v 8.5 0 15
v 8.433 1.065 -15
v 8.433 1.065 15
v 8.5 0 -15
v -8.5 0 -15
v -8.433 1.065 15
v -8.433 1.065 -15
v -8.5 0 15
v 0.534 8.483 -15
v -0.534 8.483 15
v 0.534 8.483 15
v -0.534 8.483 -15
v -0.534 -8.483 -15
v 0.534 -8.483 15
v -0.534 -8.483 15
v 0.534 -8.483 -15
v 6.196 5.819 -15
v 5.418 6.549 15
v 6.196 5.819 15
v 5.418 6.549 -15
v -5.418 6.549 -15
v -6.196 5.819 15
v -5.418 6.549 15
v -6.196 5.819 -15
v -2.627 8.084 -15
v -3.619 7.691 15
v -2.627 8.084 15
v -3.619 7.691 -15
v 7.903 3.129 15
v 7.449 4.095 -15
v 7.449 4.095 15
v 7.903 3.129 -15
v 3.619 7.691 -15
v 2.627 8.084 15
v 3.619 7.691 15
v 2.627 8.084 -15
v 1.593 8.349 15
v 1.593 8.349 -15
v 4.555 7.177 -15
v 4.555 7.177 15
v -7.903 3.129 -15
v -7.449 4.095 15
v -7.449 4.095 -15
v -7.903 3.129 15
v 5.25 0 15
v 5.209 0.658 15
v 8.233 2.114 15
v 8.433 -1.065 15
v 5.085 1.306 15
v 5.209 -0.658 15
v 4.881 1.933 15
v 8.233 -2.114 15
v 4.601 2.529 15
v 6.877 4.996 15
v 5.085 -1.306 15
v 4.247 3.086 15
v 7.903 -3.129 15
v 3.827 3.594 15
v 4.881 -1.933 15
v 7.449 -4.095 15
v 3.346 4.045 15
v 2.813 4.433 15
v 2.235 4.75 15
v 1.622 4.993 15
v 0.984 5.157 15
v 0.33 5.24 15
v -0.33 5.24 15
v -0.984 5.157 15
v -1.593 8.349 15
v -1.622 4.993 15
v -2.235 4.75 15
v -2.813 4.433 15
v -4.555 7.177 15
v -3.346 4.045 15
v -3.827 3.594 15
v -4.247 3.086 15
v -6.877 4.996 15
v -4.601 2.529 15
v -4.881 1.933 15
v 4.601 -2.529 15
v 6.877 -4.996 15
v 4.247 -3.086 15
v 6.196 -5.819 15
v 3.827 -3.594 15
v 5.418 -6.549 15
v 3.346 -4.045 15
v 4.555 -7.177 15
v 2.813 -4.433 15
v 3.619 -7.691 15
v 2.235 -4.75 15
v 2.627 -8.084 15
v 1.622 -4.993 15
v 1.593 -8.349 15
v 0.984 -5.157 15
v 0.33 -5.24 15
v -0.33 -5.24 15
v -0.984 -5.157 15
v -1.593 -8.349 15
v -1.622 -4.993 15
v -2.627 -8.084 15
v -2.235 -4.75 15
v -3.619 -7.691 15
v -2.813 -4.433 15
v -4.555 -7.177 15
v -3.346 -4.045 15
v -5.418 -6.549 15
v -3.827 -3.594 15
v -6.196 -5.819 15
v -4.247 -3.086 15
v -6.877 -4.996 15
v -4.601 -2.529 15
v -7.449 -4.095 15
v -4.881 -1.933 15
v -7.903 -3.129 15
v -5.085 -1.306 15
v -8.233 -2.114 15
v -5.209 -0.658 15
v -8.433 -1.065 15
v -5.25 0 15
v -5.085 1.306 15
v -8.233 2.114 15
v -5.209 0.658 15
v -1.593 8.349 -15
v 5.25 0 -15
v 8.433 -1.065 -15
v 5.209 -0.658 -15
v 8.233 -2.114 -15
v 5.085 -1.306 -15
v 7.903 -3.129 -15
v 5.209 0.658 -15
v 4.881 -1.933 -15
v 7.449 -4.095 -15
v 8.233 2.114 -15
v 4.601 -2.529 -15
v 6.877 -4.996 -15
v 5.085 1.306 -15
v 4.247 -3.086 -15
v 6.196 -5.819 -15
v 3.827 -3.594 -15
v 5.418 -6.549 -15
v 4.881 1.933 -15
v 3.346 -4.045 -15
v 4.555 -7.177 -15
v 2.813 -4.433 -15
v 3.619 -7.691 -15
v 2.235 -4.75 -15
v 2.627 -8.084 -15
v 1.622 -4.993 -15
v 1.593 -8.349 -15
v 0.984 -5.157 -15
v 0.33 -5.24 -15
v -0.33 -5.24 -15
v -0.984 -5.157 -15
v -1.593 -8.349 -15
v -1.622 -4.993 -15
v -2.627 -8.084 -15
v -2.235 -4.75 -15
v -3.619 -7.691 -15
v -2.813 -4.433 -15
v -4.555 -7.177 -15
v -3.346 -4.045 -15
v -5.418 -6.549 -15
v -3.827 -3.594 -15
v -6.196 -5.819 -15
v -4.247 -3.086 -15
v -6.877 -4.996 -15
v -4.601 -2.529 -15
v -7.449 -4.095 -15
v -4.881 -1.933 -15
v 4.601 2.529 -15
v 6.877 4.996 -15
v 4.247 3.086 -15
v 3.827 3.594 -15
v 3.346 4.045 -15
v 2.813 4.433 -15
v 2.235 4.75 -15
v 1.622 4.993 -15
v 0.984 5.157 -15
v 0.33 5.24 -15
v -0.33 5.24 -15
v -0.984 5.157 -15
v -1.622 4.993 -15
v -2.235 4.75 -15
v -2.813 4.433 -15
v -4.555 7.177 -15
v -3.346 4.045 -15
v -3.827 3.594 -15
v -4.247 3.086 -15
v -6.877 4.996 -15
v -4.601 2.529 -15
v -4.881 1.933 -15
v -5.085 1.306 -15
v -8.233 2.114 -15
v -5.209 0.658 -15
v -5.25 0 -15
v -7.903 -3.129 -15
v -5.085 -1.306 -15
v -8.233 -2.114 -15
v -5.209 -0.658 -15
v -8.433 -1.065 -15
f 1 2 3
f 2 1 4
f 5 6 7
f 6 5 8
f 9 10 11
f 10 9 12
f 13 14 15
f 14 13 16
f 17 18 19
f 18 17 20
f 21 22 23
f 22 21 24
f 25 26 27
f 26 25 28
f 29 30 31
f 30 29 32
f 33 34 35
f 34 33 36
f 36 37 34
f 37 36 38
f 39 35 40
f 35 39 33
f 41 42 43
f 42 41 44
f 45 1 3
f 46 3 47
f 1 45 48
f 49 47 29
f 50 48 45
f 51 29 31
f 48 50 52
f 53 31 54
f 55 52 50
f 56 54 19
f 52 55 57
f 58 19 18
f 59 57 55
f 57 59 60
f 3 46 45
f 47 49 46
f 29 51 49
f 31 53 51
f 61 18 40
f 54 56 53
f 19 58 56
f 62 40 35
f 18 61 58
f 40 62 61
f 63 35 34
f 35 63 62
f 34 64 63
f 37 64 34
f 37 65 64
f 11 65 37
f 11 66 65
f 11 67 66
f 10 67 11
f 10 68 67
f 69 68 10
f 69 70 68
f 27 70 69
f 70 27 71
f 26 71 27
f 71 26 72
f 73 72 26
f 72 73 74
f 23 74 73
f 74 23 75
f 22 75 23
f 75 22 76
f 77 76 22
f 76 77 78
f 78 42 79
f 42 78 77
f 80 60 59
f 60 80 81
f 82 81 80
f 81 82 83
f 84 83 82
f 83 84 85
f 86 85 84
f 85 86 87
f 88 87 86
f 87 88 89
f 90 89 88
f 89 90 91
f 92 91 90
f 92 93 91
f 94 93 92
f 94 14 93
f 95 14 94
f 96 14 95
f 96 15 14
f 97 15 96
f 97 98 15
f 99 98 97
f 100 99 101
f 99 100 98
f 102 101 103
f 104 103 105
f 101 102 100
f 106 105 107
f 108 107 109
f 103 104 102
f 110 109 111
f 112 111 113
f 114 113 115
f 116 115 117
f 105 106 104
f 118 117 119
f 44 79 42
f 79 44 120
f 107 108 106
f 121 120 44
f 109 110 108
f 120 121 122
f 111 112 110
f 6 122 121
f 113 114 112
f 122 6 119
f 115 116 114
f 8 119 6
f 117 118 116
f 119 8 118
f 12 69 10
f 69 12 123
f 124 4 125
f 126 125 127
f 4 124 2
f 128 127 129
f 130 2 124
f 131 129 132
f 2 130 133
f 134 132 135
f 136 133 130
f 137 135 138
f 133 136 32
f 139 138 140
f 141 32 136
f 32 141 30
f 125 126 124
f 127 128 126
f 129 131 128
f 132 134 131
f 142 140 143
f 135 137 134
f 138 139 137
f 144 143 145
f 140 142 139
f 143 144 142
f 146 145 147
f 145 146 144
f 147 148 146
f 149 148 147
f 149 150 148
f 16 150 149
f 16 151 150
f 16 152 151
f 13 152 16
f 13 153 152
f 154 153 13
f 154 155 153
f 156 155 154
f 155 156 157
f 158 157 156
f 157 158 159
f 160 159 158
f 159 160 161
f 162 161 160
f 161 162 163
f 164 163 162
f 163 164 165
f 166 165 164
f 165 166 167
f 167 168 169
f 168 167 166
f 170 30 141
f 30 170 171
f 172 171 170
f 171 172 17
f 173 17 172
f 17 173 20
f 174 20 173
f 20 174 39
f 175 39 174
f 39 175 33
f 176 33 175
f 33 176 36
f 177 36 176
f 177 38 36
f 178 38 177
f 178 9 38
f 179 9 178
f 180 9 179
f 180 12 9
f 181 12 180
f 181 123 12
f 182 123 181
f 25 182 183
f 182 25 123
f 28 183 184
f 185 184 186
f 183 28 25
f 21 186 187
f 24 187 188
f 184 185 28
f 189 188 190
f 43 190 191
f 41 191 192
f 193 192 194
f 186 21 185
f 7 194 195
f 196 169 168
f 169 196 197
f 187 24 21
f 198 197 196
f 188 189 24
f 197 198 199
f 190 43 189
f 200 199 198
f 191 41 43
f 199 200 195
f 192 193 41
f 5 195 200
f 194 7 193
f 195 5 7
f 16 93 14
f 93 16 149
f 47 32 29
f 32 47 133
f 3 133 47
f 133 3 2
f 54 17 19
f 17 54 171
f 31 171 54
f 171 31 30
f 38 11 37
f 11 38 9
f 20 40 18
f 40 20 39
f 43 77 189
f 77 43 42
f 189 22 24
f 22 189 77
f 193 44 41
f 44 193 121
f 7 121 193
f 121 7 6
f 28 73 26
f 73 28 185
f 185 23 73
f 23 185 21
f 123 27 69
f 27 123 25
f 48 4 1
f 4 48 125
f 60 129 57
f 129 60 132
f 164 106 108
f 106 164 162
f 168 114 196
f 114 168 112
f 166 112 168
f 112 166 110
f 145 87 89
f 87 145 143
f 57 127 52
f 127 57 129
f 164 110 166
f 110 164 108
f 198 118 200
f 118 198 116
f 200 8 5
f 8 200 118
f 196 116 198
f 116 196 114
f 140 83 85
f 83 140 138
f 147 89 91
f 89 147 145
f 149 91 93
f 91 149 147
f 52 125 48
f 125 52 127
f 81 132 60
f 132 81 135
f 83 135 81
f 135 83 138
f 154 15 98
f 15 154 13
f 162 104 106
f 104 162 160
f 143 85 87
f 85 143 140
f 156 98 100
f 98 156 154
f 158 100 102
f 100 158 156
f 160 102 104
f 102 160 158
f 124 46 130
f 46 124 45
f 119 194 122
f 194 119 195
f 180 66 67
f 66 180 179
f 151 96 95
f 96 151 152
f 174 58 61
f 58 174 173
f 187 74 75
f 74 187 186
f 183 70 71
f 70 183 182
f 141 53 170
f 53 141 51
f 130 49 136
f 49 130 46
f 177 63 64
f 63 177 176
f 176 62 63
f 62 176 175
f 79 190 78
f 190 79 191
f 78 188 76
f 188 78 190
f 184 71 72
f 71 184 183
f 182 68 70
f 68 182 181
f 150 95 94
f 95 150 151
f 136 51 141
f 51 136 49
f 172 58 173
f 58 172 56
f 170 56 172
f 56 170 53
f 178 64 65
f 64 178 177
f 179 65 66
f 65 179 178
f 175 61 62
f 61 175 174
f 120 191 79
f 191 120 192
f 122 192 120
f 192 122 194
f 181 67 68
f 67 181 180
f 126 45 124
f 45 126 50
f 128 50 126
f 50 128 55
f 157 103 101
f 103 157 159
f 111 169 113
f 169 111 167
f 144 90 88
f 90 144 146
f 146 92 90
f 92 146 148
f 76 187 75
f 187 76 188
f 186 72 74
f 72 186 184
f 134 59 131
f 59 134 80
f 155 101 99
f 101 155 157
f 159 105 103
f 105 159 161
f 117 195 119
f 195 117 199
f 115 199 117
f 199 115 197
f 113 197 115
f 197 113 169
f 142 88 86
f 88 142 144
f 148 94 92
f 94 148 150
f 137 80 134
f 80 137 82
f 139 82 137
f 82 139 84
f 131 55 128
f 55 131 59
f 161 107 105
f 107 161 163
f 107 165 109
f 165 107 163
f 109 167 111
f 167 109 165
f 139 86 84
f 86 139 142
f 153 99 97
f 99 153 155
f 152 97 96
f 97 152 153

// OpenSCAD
$fn = 50;


difference() {
	union() {
		translate(v = [0, 0, -15.0000000000]) {
			cylinder(h = 30, r = 8.5000000000);
		}
	}
	union() {
		translate(v = [0, 0, -100.0000000000]) {
			cylinder(h = 200, r = 5.2500000000);
		}
	}
}
